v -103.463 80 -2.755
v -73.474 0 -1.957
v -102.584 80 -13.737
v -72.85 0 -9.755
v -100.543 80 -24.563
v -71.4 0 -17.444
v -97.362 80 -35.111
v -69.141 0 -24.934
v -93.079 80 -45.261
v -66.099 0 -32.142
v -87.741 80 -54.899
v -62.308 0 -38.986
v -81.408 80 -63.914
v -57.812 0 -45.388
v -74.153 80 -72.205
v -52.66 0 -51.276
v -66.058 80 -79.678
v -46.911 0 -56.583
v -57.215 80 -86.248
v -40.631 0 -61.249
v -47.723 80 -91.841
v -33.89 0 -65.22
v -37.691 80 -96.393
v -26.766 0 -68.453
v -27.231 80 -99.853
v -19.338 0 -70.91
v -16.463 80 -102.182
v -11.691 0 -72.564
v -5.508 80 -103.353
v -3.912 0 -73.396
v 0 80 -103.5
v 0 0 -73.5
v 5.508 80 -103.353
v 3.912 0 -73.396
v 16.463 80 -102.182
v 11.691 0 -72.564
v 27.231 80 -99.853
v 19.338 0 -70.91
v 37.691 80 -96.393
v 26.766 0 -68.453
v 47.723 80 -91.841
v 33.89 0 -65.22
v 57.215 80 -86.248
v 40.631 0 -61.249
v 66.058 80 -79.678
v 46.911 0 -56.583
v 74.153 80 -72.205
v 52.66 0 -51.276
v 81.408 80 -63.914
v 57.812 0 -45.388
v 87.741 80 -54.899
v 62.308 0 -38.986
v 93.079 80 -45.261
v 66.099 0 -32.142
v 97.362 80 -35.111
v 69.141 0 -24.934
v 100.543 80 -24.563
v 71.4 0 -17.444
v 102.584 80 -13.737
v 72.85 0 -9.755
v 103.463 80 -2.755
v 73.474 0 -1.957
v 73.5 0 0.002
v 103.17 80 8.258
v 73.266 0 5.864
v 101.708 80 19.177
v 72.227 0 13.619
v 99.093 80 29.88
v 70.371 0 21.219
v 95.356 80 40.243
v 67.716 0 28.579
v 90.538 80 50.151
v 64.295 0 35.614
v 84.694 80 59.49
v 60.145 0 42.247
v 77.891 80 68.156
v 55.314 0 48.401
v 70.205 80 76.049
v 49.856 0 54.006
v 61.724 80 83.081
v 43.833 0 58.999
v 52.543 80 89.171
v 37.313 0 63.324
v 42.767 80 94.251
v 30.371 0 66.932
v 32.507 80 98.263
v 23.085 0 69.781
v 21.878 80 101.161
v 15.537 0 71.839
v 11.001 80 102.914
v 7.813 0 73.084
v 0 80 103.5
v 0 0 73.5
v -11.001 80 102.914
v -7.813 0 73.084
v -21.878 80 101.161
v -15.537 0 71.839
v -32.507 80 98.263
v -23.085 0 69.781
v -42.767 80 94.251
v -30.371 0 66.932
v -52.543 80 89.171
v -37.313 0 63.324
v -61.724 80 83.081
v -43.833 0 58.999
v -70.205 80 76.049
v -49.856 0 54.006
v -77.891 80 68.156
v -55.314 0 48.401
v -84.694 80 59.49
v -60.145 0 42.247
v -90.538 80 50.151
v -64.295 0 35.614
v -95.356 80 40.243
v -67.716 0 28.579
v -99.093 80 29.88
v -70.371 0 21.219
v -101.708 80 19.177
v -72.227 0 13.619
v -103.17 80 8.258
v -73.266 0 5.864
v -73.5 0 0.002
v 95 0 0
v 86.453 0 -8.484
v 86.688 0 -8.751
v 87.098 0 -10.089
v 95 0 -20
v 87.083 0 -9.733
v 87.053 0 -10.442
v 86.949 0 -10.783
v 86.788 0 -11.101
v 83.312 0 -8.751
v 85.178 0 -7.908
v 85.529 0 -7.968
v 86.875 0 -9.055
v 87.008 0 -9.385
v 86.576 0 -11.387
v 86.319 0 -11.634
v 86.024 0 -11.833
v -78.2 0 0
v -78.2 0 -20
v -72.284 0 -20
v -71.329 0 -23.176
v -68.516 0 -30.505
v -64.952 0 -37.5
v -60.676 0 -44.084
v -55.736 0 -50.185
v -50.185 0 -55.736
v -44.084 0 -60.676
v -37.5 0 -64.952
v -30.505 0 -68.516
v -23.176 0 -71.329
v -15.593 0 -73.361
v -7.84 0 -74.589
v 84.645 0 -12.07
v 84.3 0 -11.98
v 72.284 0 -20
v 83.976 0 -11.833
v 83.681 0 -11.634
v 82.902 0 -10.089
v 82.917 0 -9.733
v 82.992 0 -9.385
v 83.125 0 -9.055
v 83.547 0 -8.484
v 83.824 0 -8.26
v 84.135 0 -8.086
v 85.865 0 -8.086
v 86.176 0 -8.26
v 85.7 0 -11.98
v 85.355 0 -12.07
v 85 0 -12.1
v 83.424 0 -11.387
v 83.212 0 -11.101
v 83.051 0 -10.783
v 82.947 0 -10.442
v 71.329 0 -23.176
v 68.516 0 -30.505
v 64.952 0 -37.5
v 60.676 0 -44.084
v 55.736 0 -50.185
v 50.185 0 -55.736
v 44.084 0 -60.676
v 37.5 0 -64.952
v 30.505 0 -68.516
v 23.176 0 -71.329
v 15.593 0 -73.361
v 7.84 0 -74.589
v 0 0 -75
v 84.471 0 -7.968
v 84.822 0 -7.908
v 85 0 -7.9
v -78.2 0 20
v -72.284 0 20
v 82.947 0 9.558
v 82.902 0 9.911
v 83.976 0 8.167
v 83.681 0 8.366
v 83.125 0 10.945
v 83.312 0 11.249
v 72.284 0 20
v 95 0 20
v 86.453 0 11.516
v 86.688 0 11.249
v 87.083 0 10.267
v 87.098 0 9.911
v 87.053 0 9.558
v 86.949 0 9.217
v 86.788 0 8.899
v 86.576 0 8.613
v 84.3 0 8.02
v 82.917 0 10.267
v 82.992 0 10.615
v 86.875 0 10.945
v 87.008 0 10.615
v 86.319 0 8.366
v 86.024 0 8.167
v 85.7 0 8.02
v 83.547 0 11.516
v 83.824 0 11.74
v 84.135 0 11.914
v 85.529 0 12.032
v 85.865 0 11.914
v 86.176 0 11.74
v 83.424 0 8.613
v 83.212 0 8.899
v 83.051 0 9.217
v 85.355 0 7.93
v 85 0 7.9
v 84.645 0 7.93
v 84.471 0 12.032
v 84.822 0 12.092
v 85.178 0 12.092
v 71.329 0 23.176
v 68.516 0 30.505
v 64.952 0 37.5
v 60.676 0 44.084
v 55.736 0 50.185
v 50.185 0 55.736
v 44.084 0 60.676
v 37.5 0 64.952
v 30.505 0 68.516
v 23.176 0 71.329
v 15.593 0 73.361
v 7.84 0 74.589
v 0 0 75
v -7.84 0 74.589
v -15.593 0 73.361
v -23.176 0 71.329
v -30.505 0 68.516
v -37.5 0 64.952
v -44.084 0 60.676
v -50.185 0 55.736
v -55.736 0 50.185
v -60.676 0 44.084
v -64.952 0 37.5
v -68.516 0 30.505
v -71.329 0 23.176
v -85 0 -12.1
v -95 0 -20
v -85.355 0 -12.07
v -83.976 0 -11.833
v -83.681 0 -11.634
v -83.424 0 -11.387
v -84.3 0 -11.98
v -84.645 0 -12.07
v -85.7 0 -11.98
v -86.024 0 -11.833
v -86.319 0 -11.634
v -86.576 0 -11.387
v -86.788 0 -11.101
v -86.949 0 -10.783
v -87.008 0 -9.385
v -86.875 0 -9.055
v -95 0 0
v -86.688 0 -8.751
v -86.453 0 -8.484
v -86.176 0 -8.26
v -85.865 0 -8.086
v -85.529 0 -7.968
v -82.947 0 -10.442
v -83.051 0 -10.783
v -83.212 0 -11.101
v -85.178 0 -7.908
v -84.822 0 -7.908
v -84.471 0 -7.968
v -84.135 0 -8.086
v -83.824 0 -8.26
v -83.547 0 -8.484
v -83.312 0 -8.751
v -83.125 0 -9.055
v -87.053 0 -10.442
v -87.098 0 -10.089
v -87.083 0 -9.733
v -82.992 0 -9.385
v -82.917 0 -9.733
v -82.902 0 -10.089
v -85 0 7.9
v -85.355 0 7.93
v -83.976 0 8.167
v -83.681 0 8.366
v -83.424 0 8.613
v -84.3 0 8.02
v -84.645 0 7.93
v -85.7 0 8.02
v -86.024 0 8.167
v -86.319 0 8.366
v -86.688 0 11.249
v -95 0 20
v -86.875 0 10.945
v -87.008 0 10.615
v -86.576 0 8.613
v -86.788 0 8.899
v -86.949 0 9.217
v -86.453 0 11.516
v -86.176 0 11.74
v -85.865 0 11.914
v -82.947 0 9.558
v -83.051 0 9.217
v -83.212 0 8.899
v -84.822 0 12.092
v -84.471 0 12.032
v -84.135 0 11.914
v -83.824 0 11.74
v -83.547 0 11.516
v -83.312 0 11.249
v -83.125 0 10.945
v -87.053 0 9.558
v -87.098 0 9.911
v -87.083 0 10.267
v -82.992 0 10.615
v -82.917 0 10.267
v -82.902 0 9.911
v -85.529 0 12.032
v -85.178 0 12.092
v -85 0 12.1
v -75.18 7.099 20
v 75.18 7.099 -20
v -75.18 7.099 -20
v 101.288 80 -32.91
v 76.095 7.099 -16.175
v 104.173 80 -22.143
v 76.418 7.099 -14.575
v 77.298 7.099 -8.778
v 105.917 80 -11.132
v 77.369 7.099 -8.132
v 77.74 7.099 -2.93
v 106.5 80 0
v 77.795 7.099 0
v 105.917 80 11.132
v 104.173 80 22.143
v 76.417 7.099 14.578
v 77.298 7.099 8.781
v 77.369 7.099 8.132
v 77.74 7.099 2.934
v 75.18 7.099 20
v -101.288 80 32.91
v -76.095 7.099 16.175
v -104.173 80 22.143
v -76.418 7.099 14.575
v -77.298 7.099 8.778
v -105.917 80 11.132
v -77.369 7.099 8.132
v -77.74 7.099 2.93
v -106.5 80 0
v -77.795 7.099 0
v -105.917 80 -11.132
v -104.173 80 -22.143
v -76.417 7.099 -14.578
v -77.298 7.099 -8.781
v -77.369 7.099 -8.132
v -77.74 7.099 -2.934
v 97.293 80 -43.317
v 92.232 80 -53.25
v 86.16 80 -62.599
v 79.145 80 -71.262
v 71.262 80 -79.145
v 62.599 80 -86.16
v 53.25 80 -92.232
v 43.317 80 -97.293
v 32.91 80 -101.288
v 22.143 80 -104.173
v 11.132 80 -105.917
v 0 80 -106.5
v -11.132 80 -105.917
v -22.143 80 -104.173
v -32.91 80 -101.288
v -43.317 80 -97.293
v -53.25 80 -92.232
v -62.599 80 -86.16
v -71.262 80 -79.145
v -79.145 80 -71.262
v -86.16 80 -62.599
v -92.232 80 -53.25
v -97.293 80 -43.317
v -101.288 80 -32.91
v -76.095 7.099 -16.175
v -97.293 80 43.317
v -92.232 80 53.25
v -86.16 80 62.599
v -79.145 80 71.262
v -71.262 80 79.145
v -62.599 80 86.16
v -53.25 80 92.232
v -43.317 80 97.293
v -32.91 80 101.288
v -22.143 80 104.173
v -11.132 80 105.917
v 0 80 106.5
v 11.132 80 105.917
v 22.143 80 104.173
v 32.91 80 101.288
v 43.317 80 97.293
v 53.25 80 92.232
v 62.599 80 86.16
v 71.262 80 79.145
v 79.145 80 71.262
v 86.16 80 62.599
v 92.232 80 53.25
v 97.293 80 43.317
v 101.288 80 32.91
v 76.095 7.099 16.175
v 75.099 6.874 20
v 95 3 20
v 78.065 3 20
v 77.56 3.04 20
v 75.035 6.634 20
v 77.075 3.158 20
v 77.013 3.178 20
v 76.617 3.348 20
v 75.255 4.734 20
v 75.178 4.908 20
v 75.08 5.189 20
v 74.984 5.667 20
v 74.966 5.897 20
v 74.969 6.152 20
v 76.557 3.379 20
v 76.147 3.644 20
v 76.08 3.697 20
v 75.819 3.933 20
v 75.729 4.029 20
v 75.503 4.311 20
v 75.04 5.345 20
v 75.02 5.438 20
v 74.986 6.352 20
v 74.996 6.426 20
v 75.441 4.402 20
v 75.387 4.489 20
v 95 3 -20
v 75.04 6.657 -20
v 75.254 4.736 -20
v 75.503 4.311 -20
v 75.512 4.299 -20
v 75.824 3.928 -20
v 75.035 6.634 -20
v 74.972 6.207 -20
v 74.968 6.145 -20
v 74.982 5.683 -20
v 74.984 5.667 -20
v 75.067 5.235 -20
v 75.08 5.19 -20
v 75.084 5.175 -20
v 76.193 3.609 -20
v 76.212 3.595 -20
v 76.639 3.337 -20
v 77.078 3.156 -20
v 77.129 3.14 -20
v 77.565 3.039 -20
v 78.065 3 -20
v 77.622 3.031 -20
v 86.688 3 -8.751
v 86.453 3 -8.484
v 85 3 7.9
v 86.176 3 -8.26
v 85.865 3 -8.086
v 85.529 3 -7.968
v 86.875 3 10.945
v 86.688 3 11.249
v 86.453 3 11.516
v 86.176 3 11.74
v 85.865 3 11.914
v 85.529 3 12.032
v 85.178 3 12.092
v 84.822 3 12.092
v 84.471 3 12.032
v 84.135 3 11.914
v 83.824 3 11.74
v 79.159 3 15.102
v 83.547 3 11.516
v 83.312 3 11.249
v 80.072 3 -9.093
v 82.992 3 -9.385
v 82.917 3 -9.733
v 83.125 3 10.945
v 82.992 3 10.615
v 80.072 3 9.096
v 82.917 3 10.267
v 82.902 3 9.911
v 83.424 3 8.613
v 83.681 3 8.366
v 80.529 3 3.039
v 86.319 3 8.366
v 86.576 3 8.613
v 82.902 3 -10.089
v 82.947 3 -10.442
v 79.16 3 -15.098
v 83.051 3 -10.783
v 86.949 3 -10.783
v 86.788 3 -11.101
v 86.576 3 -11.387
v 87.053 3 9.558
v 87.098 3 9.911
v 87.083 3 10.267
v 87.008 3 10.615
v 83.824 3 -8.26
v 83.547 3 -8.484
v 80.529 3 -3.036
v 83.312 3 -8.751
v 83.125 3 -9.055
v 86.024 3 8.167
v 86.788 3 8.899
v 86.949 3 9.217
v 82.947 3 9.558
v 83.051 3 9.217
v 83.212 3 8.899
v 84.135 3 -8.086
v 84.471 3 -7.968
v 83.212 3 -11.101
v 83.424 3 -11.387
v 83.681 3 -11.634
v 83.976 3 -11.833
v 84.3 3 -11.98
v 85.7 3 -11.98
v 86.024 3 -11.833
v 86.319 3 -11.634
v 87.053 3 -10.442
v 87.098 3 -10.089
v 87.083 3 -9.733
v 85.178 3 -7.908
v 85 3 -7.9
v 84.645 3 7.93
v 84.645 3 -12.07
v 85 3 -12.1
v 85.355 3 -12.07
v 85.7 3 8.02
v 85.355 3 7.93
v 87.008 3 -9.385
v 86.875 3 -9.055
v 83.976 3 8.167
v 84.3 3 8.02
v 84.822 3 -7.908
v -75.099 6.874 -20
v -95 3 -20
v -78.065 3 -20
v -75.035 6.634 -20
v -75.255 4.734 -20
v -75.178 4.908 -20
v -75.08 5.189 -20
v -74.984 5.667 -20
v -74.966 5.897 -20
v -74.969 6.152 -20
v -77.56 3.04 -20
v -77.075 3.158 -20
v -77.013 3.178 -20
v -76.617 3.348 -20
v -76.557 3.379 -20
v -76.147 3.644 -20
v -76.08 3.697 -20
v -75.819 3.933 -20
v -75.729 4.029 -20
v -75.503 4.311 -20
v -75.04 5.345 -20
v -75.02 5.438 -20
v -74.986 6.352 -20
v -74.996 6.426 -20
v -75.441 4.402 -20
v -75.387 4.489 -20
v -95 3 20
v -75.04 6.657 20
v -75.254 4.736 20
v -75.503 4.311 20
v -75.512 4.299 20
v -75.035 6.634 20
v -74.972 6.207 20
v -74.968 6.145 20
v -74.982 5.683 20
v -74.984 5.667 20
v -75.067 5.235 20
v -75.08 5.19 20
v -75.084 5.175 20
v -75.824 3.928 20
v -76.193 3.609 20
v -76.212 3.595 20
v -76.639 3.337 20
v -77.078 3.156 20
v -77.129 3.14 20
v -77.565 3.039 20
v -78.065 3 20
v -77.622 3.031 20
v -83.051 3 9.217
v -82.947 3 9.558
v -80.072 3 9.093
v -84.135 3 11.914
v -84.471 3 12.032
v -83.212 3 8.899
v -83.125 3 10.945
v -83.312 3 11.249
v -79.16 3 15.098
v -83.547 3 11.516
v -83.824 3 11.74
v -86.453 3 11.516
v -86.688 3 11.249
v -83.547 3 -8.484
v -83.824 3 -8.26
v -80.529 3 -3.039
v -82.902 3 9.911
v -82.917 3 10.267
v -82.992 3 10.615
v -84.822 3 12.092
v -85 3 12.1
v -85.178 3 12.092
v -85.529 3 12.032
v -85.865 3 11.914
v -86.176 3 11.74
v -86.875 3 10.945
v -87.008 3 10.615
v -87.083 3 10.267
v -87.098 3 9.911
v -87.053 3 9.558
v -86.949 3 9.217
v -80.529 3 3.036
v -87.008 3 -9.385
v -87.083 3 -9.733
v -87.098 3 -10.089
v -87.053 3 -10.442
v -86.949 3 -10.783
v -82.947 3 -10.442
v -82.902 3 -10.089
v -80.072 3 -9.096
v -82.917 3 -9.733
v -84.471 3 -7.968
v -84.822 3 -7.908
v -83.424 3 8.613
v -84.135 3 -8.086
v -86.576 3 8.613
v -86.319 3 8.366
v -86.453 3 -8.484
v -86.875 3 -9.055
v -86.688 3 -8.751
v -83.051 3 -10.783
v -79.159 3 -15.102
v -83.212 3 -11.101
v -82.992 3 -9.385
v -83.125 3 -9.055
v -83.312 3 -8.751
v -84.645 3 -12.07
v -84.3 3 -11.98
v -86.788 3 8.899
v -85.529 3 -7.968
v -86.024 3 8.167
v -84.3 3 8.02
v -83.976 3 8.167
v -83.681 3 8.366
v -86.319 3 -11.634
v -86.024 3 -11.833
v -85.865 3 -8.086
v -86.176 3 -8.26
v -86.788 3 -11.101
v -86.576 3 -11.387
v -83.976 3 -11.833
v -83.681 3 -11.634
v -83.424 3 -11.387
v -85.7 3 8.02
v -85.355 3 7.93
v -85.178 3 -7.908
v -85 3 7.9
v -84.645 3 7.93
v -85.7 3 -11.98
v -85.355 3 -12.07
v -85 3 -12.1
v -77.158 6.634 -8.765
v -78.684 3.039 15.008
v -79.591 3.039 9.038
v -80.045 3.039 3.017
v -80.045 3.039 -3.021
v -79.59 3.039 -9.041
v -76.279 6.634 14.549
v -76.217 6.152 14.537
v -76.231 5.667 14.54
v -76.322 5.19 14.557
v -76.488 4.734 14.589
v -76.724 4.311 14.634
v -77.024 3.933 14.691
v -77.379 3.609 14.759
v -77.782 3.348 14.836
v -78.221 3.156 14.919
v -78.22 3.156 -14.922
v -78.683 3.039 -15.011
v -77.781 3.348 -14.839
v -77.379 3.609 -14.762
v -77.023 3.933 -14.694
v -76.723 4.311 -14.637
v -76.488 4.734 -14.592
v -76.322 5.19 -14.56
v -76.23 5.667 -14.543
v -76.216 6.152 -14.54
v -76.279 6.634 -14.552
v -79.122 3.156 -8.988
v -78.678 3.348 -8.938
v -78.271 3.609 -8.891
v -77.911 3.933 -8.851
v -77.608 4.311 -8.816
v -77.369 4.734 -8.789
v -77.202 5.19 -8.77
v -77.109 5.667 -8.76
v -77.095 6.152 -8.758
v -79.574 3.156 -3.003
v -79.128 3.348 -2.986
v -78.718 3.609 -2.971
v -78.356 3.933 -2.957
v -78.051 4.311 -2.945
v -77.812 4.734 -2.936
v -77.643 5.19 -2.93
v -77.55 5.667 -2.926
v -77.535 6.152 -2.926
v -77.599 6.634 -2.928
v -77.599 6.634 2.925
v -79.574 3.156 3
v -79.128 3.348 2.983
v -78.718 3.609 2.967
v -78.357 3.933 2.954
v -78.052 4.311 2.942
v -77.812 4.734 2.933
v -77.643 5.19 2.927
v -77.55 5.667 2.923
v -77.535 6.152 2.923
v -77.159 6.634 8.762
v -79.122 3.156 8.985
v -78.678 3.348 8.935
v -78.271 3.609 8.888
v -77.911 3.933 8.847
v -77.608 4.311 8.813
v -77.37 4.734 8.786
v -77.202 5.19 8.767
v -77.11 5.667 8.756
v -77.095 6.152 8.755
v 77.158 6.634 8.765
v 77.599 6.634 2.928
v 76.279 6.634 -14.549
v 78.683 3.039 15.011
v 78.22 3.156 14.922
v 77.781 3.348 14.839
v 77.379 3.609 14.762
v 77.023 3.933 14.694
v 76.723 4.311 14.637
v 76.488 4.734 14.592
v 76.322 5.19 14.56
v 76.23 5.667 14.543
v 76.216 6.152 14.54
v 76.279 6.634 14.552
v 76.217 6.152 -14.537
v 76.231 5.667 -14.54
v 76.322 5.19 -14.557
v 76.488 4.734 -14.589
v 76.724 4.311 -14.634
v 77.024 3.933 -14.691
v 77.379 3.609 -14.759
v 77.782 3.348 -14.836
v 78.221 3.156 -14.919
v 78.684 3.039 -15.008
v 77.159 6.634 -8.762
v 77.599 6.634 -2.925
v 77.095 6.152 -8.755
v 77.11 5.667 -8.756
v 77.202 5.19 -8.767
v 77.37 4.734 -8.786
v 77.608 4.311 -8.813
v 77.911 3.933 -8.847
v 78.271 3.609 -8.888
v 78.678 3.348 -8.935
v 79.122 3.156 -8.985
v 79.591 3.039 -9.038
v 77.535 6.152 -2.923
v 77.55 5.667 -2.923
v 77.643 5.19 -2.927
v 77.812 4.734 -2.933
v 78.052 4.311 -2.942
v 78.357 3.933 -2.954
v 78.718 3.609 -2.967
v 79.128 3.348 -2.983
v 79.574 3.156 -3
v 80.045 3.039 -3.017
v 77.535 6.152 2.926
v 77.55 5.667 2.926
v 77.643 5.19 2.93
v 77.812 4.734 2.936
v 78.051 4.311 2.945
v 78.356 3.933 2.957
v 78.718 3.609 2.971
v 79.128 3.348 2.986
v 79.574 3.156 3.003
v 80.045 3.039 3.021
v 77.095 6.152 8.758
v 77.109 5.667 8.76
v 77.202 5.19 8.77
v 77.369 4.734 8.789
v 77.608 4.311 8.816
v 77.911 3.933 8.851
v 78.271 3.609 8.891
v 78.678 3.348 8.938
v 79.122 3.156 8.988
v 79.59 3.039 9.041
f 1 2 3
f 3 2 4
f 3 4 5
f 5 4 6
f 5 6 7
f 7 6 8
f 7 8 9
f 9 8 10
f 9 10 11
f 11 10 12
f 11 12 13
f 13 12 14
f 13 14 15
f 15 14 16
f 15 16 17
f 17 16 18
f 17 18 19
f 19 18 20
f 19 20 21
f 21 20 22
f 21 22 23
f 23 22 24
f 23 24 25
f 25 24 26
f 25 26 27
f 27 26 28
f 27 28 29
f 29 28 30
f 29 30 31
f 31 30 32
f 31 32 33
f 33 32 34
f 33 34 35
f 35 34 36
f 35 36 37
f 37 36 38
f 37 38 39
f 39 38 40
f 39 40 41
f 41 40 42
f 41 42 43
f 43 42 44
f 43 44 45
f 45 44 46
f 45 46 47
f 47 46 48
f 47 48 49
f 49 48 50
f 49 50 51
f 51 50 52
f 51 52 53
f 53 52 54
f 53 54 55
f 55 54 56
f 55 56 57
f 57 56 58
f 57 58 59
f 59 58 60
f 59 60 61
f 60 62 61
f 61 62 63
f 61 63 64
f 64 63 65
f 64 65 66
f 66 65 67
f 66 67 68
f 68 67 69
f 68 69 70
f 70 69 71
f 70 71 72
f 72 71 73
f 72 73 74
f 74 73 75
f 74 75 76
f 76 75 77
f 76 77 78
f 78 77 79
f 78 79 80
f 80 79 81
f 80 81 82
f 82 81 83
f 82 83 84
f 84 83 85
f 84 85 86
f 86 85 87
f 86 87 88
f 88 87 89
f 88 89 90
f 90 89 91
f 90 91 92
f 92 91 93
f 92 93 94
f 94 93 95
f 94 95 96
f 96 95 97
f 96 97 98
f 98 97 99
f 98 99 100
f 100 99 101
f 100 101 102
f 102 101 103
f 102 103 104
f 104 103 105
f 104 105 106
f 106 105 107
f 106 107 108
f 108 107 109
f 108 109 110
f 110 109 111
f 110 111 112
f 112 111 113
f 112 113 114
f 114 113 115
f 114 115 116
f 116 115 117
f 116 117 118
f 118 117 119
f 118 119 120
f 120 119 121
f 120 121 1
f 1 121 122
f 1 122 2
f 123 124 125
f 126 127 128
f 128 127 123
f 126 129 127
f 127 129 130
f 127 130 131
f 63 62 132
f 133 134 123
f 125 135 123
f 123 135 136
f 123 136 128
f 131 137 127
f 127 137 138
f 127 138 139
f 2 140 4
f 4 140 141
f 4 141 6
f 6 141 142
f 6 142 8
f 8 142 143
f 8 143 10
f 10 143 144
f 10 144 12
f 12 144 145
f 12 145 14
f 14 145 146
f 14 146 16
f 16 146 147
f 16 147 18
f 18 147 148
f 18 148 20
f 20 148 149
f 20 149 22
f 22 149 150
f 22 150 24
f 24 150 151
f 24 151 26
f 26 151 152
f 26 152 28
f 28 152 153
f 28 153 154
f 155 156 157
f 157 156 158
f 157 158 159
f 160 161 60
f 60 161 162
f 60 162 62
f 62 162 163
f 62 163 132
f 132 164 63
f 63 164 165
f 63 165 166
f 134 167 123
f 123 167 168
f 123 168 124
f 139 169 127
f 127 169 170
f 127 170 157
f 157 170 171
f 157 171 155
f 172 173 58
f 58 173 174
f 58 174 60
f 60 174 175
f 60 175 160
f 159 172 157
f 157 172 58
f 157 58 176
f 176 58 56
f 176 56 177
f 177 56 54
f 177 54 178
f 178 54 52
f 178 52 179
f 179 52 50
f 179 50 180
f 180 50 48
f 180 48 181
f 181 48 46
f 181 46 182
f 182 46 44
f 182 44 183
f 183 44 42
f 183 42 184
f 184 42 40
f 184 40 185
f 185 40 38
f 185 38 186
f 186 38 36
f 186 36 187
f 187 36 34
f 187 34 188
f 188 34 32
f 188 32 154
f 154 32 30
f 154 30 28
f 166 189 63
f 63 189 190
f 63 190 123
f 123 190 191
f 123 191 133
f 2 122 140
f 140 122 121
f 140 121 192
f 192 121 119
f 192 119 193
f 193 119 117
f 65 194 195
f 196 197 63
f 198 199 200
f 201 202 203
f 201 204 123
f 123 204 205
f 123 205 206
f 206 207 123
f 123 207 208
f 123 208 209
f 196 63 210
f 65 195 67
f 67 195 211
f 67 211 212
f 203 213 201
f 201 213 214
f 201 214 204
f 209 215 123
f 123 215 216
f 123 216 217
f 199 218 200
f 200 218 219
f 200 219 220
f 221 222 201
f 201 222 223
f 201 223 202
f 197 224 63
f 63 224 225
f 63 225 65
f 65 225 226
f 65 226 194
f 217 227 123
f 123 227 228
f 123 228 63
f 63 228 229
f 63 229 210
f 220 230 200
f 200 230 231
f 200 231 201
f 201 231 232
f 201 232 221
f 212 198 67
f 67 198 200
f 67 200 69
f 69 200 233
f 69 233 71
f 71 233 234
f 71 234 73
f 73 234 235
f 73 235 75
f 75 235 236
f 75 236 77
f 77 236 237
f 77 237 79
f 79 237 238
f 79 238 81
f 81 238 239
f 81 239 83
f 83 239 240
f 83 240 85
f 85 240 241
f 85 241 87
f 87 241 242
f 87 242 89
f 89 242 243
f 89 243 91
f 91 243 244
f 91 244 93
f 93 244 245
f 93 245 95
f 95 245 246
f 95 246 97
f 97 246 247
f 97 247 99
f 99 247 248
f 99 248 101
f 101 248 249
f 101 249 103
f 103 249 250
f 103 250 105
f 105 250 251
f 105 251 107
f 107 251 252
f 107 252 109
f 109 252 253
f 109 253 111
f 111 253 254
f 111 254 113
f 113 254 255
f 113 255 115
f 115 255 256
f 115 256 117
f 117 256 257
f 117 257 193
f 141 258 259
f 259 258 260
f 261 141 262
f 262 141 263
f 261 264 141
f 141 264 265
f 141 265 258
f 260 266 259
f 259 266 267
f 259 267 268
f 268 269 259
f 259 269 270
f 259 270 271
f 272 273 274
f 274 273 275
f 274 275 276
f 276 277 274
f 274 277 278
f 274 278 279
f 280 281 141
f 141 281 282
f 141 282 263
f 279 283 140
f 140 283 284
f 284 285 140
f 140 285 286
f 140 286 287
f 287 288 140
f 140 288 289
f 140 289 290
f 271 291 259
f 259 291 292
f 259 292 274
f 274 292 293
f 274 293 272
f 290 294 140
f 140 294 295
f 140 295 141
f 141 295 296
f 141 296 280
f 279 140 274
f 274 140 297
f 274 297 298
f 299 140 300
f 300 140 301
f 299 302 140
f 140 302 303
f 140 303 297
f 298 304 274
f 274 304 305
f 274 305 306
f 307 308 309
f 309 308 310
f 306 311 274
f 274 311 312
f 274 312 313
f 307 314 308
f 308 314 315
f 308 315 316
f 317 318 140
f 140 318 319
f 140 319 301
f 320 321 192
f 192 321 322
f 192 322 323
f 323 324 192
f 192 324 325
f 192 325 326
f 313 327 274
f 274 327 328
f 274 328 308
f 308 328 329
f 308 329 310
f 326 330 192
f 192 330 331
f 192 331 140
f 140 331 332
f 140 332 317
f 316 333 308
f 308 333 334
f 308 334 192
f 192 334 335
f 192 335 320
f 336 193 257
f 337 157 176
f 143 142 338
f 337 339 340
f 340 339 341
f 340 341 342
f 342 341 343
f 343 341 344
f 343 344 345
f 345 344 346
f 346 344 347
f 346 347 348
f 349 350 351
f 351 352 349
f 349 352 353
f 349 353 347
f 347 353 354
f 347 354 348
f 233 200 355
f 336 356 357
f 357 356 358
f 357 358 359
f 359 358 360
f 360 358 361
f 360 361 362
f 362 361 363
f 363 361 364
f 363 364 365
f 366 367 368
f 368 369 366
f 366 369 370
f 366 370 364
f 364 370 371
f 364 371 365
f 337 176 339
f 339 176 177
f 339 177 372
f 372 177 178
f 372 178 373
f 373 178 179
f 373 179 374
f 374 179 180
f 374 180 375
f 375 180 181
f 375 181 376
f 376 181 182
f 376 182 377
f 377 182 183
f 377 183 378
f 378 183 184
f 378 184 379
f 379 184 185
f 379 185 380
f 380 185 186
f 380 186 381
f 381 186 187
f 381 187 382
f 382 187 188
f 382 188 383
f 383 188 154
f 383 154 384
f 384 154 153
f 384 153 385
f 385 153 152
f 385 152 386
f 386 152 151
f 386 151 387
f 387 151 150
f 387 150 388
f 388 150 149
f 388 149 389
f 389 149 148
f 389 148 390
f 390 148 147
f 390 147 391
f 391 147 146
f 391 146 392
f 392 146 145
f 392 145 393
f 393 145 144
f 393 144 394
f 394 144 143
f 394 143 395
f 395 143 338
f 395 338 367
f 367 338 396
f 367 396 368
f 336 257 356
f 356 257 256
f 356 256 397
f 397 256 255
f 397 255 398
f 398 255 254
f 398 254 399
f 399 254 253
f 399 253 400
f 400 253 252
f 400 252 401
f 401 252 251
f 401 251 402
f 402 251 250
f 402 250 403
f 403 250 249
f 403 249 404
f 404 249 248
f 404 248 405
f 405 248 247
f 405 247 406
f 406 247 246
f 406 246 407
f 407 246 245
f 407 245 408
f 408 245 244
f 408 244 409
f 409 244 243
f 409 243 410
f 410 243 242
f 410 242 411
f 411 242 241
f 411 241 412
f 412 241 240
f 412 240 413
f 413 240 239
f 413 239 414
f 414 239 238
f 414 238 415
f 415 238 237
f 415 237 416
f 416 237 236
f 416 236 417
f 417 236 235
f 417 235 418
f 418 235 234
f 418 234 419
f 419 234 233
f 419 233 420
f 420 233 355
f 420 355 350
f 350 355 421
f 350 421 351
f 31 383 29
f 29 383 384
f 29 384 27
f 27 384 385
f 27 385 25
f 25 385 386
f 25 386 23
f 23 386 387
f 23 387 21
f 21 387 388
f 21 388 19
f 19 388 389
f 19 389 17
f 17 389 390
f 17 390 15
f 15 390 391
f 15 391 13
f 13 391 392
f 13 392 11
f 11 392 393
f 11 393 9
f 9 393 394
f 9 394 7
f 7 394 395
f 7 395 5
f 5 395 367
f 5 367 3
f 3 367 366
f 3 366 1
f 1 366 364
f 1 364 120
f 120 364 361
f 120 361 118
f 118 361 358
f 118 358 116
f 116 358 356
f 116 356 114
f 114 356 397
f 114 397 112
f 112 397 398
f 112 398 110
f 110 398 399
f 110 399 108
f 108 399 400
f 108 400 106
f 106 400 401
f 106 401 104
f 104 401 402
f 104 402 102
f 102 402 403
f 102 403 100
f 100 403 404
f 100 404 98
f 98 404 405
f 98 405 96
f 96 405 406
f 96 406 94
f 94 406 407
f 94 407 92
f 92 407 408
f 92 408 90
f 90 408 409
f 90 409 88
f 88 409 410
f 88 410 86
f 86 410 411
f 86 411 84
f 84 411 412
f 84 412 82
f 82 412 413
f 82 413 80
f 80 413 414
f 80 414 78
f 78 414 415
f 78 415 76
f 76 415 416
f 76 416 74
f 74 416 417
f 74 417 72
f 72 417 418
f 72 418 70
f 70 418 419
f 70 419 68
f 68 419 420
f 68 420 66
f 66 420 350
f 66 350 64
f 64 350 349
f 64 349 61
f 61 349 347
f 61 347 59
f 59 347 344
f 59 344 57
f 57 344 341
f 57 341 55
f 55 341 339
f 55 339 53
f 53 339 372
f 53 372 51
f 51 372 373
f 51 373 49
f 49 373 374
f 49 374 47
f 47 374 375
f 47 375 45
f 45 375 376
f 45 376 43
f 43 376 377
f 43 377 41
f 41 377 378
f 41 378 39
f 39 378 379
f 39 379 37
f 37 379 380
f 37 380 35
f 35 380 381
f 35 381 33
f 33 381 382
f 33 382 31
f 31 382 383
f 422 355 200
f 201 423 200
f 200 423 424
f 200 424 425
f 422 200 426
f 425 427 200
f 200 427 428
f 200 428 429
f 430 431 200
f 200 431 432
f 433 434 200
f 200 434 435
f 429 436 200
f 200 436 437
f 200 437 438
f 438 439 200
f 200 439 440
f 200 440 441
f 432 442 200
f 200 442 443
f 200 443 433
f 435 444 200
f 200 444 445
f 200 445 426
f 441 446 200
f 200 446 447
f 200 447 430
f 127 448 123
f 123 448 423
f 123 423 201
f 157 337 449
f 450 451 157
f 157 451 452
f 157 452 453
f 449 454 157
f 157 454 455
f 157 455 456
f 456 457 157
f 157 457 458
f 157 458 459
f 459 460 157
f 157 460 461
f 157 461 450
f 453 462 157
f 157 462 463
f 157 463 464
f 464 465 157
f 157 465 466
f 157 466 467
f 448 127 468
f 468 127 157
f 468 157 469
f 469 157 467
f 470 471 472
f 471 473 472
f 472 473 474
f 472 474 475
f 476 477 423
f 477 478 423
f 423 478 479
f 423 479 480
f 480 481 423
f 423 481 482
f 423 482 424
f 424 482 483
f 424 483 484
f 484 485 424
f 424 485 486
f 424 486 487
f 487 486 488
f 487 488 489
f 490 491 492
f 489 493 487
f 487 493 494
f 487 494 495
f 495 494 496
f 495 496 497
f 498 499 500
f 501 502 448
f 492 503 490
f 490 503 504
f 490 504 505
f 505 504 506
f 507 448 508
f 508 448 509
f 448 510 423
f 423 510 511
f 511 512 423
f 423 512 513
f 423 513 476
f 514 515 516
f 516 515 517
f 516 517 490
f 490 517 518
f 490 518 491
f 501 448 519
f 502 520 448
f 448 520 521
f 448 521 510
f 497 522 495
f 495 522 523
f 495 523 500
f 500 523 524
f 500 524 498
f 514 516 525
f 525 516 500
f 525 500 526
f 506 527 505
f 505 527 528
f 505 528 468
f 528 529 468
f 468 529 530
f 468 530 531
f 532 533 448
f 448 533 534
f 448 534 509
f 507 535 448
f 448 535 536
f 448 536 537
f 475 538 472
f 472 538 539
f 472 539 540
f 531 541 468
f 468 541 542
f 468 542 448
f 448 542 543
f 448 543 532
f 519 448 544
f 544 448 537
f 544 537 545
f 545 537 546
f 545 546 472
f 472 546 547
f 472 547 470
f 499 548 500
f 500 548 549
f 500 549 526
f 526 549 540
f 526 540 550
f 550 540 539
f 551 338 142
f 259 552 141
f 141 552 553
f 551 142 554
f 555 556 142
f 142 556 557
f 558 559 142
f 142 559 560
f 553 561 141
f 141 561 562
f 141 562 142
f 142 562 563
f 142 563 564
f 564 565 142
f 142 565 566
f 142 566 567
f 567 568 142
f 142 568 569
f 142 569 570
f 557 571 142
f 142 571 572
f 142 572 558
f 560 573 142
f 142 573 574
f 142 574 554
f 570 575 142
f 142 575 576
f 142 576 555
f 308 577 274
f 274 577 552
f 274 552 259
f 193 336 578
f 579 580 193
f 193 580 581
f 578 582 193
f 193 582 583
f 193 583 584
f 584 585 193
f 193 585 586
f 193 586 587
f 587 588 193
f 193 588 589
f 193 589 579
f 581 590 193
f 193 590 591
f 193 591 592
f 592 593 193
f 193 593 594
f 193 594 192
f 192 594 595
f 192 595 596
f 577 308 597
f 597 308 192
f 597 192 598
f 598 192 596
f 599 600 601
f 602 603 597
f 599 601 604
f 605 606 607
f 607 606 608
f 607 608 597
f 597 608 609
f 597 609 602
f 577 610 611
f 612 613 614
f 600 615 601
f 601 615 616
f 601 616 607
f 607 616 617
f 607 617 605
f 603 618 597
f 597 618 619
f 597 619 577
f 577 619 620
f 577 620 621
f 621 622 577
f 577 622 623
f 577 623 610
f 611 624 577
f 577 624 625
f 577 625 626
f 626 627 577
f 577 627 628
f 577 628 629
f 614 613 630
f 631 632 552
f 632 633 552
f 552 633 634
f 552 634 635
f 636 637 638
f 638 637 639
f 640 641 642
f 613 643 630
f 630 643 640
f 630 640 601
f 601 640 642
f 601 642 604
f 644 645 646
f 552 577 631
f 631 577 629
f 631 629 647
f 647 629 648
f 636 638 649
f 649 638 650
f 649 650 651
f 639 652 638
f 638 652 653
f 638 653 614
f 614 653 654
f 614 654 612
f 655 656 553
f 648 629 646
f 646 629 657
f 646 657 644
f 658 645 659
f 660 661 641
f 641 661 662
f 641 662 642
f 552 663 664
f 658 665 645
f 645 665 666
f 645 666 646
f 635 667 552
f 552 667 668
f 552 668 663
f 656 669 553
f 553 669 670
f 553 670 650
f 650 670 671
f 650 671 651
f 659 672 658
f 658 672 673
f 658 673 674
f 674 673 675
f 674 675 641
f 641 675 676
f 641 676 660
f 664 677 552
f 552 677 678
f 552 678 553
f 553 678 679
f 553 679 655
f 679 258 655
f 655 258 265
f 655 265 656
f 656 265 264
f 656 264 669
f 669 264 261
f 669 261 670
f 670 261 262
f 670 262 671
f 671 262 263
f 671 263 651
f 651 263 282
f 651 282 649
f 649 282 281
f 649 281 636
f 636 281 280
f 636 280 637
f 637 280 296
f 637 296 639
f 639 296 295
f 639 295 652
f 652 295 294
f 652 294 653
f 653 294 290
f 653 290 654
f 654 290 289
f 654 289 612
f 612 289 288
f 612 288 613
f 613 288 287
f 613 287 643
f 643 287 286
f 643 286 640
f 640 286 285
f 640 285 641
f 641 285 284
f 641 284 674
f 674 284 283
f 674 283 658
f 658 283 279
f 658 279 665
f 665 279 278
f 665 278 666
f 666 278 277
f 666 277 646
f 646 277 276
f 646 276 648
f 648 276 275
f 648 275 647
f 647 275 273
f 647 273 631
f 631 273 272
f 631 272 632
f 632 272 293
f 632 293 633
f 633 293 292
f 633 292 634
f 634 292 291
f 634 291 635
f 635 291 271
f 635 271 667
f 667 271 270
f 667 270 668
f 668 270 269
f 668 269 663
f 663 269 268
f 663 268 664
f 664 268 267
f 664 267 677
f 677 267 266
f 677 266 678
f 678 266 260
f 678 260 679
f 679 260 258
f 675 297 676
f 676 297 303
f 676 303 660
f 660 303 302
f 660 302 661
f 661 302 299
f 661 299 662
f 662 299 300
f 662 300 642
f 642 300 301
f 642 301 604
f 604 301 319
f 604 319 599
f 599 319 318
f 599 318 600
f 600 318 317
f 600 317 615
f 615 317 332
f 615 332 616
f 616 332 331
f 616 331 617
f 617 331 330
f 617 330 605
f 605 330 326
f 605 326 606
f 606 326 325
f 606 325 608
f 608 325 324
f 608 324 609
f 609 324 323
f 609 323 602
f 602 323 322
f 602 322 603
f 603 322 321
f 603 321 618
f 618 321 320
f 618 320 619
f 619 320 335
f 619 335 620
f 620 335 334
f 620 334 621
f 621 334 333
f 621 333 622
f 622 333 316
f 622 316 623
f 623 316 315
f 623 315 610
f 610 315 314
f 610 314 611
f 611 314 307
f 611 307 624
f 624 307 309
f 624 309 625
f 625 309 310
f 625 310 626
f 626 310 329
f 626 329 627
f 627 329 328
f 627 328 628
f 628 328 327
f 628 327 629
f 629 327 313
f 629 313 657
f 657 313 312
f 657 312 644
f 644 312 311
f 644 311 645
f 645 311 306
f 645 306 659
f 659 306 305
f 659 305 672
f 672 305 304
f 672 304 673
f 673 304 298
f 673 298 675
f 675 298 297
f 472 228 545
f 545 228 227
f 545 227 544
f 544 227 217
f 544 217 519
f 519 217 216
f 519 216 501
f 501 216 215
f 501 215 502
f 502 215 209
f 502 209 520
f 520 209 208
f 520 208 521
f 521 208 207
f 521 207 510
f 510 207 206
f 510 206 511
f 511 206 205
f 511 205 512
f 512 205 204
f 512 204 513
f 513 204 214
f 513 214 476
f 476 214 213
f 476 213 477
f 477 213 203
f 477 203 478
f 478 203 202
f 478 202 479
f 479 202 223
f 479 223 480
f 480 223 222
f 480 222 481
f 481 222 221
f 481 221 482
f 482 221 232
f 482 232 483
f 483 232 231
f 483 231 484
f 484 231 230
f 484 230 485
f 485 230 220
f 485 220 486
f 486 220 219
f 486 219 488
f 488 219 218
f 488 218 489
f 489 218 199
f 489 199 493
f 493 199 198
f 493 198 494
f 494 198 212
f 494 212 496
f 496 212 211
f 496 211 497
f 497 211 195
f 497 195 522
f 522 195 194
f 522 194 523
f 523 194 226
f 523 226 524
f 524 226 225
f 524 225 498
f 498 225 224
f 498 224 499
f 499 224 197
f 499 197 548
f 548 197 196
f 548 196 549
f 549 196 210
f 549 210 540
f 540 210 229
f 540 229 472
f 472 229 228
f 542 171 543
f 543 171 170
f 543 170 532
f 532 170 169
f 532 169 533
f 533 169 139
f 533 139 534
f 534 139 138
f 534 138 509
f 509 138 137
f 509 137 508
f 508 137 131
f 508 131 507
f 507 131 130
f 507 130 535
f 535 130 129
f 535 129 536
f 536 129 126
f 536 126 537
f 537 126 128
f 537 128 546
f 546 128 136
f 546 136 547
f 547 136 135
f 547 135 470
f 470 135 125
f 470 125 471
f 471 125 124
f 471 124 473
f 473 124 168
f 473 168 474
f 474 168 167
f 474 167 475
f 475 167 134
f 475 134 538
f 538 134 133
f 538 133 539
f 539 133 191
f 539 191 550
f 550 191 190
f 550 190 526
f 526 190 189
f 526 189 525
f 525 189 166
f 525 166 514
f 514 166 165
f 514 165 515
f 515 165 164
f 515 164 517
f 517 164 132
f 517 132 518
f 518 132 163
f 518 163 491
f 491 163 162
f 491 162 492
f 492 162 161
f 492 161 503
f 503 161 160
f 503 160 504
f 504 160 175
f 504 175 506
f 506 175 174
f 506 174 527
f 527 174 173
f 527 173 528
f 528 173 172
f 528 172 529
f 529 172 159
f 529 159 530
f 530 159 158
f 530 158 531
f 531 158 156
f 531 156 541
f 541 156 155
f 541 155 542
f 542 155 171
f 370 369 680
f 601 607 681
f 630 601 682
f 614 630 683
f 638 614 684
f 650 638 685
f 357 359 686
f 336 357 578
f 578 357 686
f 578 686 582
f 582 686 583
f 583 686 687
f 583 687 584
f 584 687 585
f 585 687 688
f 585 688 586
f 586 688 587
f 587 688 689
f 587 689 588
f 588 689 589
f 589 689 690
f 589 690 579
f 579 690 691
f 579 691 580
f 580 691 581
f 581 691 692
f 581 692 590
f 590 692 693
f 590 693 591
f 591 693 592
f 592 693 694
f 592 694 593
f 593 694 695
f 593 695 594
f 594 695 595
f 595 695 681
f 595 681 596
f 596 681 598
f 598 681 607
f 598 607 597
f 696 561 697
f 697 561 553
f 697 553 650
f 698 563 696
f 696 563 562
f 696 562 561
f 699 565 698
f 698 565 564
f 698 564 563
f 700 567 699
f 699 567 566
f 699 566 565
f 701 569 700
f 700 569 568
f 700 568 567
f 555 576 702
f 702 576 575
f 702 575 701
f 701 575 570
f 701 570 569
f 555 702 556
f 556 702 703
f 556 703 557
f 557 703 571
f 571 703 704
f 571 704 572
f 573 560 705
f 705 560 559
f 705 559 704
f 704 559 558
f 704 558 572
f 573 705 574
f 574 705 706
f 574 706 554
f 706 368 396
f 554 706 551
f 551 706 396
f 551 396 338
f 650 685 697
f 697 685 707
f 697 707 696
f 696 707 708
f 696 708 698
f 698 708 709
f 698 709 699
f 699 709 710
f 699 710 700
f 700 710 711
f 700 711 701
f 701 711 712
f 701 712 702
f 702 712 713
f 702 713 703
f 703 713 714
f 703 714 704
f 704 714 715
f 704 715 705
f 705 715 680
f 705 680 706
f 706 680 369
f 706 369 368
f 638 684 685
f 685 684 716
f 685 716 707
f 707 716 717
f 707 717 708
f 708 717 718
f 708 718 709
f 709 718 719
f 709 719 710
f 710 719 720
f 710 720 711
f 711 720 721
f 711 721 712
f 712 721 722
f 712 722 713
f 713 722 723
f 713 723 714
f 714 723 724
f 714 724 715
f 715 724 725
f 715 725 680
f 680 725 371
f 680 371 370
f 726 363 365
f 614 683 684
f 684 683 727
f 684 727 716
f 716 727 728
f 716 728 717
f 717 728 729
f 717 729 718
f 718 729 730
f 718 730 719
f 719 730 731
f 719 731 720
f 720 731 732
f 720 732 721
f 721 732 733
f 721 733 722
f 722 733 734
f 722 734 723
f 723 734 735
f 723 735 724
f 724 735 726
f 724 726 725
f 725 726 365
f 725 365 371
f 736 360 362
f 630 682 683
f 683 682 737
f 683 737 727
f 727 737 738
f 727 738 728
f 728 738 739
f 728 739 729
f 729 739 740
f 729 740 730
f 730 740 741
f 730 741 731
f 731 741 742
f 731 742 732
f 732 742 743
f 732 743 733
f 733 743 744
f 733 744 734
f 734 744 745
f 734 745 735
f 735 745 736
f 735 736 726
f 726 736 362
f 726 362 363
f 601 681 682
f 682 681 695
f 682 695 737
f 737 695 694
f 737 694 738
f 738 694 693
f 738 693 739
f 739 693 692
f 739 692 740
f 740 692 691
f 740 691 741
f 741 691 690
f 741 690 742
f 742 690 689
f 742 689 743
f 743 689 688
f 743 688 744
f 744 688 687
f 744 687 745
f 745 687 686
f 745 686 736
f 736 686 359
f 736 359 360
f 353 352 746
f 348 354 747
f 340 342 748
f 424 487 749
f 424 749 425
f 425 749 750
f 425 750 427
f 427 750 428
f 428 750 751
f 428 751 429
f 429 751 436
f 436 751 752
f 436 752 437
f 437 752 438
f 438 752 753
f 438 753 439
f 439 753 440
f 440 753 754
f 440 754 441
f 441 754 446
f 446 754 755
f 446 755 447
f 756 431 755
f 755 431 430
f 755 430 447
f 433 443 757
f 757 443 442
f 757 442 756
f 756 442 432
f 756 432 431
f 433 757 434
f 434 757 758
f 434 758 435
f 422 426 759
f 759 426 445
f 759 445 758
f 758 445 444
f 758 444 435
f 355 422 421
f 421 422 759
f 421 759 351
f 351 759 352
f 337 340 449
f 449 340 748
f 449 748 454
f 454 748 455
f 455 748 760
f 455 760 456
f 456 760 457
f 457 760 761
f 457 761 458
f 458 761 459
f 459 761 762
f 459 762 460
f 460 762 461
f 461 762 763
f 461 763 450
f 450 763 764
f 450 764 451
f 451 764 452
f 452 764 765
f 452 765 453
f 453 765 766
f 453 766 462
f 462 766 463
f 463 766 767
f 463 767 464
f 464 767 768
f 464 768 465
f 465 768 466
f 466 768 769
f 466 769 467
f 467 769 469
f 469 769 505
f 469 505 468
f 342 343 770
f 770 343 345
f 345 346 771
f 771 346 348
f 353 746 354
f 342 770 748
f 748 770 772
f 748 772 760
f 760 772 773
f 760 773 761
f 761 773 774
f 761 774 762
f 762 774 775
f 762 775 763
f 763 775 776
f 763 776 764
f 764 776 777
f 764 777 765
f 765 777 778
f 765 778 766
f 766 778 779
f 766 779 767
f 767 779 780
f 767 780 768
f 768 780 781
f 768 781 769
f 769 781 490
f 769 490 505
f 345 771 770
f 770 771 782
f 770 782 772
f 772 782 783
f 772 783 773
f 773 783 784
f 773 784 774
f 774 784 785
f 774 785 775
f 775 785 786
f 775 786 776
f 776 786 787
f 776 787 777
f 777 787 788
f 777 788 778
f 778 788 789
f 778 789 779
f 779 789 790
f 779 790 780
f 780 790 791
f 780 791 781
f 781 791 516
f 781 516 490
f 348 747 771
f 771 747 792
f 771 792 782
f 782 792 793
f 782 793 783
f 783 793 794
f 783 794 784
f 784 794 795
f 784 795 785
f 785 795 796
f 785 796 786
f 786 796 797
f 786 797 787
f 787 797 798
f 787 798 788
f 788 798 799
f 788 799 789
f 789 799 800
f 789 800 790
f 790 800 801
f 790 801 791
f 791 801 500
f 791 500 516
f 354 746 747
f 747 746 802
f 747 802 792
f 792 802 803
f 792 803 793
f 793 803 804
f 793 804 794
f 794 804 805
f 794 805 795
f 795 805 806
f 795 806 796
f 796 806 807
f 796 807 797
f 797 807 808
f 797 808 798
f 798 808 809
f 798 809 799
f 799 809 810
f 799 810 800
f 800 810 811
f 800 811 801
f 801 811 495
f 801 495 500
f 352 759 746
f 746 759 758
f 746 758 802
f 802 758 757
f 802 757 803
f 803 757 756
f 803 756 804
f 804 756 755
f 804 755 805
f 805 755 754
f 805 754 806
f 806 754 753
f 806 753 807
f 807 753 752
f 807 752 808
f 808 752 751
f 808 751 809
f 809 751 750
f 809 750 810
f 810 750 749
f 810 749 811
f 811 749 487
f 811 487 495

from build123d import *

# Parameters (mm, degrees)
BOSS_EXTRUDE1_DEPTH = 3
SKETCH3_R           = 2.1
CUT_EXTRUDE1_DEPTH  = 3
FILLET1_R           = 3


with BuildPart() as part:
    # Sketch1 → Revolve1 (revolve)
    with BuildSketch(Plane.XY, mode=Mode.PRIVATE) as revolve1_sk:
        Polygon((73.5, 0), (75, 0), (106.5, 80), (103.5, 80), align=None)
    revolve(revolve1_sk.sketch.rotate(Axis((0, 0, 0), (0, 1, 0)), 90), axis=Axis((0, 0, 0), (0, 1, 0)))

    # Sketch2 → Boss-Extrude1 (add)
    with BuildSketch(Plane.XZ):
        with BuildLine():
            Line((72.284161474, -20), (95, -20))
            Line((95, -20), (95, 20))
            Line((95, 20), (72.284161474, 20))
            ThreePointArc((72.284161474, 20), (75, 0), (72.284161474, -20))
        make_face()
        with BuildLine():
            Line((-95, 20), (-72.284161474, 20))
            ThreePointArc((-72.284161474, 20), (-75, 0), (-72.284161474, -20))
            Line((-72.284161474, -20), (-95, -20))
            Line((-95, -20), (-95, 20))
        make_face()
    extrude(amount=-BOSS_EXTRUDE1_DEPTH)

    # Sketch3 → Cut-Extrude1 (cut)
    with BuildSketch(Plane.XZ):
        with Locations(Location((85, 10, 0), (0, 0, 270))):
            Circle(SKETCH3_R)
        with Locations(Location((85, -10, 0), (0, 0, 90))):
            Circle(SKETCH3_R)
        with Locations(Location((-85, -10, 0), (0, 0, 270))):
            Circle(SKETCH3_R)
        with Locations(Location((-85, 10, 0), (0, 0, 90))):
            Circle(SKETCH3_R)
    extrude(amount=-CUT_EXTRUDE1_DEPTH, mode=Mode.SUBTRACT)

    # Fillet1
    fillet1_edges = [part.edges().sort_by_distance(p)[0] for p in [
        (76.18125, 3, 0),
        (-76.18125, 3, 0),
    ]]
    fillet(fillet1_edges, radius=FILLET1_R)


solid = part.part
